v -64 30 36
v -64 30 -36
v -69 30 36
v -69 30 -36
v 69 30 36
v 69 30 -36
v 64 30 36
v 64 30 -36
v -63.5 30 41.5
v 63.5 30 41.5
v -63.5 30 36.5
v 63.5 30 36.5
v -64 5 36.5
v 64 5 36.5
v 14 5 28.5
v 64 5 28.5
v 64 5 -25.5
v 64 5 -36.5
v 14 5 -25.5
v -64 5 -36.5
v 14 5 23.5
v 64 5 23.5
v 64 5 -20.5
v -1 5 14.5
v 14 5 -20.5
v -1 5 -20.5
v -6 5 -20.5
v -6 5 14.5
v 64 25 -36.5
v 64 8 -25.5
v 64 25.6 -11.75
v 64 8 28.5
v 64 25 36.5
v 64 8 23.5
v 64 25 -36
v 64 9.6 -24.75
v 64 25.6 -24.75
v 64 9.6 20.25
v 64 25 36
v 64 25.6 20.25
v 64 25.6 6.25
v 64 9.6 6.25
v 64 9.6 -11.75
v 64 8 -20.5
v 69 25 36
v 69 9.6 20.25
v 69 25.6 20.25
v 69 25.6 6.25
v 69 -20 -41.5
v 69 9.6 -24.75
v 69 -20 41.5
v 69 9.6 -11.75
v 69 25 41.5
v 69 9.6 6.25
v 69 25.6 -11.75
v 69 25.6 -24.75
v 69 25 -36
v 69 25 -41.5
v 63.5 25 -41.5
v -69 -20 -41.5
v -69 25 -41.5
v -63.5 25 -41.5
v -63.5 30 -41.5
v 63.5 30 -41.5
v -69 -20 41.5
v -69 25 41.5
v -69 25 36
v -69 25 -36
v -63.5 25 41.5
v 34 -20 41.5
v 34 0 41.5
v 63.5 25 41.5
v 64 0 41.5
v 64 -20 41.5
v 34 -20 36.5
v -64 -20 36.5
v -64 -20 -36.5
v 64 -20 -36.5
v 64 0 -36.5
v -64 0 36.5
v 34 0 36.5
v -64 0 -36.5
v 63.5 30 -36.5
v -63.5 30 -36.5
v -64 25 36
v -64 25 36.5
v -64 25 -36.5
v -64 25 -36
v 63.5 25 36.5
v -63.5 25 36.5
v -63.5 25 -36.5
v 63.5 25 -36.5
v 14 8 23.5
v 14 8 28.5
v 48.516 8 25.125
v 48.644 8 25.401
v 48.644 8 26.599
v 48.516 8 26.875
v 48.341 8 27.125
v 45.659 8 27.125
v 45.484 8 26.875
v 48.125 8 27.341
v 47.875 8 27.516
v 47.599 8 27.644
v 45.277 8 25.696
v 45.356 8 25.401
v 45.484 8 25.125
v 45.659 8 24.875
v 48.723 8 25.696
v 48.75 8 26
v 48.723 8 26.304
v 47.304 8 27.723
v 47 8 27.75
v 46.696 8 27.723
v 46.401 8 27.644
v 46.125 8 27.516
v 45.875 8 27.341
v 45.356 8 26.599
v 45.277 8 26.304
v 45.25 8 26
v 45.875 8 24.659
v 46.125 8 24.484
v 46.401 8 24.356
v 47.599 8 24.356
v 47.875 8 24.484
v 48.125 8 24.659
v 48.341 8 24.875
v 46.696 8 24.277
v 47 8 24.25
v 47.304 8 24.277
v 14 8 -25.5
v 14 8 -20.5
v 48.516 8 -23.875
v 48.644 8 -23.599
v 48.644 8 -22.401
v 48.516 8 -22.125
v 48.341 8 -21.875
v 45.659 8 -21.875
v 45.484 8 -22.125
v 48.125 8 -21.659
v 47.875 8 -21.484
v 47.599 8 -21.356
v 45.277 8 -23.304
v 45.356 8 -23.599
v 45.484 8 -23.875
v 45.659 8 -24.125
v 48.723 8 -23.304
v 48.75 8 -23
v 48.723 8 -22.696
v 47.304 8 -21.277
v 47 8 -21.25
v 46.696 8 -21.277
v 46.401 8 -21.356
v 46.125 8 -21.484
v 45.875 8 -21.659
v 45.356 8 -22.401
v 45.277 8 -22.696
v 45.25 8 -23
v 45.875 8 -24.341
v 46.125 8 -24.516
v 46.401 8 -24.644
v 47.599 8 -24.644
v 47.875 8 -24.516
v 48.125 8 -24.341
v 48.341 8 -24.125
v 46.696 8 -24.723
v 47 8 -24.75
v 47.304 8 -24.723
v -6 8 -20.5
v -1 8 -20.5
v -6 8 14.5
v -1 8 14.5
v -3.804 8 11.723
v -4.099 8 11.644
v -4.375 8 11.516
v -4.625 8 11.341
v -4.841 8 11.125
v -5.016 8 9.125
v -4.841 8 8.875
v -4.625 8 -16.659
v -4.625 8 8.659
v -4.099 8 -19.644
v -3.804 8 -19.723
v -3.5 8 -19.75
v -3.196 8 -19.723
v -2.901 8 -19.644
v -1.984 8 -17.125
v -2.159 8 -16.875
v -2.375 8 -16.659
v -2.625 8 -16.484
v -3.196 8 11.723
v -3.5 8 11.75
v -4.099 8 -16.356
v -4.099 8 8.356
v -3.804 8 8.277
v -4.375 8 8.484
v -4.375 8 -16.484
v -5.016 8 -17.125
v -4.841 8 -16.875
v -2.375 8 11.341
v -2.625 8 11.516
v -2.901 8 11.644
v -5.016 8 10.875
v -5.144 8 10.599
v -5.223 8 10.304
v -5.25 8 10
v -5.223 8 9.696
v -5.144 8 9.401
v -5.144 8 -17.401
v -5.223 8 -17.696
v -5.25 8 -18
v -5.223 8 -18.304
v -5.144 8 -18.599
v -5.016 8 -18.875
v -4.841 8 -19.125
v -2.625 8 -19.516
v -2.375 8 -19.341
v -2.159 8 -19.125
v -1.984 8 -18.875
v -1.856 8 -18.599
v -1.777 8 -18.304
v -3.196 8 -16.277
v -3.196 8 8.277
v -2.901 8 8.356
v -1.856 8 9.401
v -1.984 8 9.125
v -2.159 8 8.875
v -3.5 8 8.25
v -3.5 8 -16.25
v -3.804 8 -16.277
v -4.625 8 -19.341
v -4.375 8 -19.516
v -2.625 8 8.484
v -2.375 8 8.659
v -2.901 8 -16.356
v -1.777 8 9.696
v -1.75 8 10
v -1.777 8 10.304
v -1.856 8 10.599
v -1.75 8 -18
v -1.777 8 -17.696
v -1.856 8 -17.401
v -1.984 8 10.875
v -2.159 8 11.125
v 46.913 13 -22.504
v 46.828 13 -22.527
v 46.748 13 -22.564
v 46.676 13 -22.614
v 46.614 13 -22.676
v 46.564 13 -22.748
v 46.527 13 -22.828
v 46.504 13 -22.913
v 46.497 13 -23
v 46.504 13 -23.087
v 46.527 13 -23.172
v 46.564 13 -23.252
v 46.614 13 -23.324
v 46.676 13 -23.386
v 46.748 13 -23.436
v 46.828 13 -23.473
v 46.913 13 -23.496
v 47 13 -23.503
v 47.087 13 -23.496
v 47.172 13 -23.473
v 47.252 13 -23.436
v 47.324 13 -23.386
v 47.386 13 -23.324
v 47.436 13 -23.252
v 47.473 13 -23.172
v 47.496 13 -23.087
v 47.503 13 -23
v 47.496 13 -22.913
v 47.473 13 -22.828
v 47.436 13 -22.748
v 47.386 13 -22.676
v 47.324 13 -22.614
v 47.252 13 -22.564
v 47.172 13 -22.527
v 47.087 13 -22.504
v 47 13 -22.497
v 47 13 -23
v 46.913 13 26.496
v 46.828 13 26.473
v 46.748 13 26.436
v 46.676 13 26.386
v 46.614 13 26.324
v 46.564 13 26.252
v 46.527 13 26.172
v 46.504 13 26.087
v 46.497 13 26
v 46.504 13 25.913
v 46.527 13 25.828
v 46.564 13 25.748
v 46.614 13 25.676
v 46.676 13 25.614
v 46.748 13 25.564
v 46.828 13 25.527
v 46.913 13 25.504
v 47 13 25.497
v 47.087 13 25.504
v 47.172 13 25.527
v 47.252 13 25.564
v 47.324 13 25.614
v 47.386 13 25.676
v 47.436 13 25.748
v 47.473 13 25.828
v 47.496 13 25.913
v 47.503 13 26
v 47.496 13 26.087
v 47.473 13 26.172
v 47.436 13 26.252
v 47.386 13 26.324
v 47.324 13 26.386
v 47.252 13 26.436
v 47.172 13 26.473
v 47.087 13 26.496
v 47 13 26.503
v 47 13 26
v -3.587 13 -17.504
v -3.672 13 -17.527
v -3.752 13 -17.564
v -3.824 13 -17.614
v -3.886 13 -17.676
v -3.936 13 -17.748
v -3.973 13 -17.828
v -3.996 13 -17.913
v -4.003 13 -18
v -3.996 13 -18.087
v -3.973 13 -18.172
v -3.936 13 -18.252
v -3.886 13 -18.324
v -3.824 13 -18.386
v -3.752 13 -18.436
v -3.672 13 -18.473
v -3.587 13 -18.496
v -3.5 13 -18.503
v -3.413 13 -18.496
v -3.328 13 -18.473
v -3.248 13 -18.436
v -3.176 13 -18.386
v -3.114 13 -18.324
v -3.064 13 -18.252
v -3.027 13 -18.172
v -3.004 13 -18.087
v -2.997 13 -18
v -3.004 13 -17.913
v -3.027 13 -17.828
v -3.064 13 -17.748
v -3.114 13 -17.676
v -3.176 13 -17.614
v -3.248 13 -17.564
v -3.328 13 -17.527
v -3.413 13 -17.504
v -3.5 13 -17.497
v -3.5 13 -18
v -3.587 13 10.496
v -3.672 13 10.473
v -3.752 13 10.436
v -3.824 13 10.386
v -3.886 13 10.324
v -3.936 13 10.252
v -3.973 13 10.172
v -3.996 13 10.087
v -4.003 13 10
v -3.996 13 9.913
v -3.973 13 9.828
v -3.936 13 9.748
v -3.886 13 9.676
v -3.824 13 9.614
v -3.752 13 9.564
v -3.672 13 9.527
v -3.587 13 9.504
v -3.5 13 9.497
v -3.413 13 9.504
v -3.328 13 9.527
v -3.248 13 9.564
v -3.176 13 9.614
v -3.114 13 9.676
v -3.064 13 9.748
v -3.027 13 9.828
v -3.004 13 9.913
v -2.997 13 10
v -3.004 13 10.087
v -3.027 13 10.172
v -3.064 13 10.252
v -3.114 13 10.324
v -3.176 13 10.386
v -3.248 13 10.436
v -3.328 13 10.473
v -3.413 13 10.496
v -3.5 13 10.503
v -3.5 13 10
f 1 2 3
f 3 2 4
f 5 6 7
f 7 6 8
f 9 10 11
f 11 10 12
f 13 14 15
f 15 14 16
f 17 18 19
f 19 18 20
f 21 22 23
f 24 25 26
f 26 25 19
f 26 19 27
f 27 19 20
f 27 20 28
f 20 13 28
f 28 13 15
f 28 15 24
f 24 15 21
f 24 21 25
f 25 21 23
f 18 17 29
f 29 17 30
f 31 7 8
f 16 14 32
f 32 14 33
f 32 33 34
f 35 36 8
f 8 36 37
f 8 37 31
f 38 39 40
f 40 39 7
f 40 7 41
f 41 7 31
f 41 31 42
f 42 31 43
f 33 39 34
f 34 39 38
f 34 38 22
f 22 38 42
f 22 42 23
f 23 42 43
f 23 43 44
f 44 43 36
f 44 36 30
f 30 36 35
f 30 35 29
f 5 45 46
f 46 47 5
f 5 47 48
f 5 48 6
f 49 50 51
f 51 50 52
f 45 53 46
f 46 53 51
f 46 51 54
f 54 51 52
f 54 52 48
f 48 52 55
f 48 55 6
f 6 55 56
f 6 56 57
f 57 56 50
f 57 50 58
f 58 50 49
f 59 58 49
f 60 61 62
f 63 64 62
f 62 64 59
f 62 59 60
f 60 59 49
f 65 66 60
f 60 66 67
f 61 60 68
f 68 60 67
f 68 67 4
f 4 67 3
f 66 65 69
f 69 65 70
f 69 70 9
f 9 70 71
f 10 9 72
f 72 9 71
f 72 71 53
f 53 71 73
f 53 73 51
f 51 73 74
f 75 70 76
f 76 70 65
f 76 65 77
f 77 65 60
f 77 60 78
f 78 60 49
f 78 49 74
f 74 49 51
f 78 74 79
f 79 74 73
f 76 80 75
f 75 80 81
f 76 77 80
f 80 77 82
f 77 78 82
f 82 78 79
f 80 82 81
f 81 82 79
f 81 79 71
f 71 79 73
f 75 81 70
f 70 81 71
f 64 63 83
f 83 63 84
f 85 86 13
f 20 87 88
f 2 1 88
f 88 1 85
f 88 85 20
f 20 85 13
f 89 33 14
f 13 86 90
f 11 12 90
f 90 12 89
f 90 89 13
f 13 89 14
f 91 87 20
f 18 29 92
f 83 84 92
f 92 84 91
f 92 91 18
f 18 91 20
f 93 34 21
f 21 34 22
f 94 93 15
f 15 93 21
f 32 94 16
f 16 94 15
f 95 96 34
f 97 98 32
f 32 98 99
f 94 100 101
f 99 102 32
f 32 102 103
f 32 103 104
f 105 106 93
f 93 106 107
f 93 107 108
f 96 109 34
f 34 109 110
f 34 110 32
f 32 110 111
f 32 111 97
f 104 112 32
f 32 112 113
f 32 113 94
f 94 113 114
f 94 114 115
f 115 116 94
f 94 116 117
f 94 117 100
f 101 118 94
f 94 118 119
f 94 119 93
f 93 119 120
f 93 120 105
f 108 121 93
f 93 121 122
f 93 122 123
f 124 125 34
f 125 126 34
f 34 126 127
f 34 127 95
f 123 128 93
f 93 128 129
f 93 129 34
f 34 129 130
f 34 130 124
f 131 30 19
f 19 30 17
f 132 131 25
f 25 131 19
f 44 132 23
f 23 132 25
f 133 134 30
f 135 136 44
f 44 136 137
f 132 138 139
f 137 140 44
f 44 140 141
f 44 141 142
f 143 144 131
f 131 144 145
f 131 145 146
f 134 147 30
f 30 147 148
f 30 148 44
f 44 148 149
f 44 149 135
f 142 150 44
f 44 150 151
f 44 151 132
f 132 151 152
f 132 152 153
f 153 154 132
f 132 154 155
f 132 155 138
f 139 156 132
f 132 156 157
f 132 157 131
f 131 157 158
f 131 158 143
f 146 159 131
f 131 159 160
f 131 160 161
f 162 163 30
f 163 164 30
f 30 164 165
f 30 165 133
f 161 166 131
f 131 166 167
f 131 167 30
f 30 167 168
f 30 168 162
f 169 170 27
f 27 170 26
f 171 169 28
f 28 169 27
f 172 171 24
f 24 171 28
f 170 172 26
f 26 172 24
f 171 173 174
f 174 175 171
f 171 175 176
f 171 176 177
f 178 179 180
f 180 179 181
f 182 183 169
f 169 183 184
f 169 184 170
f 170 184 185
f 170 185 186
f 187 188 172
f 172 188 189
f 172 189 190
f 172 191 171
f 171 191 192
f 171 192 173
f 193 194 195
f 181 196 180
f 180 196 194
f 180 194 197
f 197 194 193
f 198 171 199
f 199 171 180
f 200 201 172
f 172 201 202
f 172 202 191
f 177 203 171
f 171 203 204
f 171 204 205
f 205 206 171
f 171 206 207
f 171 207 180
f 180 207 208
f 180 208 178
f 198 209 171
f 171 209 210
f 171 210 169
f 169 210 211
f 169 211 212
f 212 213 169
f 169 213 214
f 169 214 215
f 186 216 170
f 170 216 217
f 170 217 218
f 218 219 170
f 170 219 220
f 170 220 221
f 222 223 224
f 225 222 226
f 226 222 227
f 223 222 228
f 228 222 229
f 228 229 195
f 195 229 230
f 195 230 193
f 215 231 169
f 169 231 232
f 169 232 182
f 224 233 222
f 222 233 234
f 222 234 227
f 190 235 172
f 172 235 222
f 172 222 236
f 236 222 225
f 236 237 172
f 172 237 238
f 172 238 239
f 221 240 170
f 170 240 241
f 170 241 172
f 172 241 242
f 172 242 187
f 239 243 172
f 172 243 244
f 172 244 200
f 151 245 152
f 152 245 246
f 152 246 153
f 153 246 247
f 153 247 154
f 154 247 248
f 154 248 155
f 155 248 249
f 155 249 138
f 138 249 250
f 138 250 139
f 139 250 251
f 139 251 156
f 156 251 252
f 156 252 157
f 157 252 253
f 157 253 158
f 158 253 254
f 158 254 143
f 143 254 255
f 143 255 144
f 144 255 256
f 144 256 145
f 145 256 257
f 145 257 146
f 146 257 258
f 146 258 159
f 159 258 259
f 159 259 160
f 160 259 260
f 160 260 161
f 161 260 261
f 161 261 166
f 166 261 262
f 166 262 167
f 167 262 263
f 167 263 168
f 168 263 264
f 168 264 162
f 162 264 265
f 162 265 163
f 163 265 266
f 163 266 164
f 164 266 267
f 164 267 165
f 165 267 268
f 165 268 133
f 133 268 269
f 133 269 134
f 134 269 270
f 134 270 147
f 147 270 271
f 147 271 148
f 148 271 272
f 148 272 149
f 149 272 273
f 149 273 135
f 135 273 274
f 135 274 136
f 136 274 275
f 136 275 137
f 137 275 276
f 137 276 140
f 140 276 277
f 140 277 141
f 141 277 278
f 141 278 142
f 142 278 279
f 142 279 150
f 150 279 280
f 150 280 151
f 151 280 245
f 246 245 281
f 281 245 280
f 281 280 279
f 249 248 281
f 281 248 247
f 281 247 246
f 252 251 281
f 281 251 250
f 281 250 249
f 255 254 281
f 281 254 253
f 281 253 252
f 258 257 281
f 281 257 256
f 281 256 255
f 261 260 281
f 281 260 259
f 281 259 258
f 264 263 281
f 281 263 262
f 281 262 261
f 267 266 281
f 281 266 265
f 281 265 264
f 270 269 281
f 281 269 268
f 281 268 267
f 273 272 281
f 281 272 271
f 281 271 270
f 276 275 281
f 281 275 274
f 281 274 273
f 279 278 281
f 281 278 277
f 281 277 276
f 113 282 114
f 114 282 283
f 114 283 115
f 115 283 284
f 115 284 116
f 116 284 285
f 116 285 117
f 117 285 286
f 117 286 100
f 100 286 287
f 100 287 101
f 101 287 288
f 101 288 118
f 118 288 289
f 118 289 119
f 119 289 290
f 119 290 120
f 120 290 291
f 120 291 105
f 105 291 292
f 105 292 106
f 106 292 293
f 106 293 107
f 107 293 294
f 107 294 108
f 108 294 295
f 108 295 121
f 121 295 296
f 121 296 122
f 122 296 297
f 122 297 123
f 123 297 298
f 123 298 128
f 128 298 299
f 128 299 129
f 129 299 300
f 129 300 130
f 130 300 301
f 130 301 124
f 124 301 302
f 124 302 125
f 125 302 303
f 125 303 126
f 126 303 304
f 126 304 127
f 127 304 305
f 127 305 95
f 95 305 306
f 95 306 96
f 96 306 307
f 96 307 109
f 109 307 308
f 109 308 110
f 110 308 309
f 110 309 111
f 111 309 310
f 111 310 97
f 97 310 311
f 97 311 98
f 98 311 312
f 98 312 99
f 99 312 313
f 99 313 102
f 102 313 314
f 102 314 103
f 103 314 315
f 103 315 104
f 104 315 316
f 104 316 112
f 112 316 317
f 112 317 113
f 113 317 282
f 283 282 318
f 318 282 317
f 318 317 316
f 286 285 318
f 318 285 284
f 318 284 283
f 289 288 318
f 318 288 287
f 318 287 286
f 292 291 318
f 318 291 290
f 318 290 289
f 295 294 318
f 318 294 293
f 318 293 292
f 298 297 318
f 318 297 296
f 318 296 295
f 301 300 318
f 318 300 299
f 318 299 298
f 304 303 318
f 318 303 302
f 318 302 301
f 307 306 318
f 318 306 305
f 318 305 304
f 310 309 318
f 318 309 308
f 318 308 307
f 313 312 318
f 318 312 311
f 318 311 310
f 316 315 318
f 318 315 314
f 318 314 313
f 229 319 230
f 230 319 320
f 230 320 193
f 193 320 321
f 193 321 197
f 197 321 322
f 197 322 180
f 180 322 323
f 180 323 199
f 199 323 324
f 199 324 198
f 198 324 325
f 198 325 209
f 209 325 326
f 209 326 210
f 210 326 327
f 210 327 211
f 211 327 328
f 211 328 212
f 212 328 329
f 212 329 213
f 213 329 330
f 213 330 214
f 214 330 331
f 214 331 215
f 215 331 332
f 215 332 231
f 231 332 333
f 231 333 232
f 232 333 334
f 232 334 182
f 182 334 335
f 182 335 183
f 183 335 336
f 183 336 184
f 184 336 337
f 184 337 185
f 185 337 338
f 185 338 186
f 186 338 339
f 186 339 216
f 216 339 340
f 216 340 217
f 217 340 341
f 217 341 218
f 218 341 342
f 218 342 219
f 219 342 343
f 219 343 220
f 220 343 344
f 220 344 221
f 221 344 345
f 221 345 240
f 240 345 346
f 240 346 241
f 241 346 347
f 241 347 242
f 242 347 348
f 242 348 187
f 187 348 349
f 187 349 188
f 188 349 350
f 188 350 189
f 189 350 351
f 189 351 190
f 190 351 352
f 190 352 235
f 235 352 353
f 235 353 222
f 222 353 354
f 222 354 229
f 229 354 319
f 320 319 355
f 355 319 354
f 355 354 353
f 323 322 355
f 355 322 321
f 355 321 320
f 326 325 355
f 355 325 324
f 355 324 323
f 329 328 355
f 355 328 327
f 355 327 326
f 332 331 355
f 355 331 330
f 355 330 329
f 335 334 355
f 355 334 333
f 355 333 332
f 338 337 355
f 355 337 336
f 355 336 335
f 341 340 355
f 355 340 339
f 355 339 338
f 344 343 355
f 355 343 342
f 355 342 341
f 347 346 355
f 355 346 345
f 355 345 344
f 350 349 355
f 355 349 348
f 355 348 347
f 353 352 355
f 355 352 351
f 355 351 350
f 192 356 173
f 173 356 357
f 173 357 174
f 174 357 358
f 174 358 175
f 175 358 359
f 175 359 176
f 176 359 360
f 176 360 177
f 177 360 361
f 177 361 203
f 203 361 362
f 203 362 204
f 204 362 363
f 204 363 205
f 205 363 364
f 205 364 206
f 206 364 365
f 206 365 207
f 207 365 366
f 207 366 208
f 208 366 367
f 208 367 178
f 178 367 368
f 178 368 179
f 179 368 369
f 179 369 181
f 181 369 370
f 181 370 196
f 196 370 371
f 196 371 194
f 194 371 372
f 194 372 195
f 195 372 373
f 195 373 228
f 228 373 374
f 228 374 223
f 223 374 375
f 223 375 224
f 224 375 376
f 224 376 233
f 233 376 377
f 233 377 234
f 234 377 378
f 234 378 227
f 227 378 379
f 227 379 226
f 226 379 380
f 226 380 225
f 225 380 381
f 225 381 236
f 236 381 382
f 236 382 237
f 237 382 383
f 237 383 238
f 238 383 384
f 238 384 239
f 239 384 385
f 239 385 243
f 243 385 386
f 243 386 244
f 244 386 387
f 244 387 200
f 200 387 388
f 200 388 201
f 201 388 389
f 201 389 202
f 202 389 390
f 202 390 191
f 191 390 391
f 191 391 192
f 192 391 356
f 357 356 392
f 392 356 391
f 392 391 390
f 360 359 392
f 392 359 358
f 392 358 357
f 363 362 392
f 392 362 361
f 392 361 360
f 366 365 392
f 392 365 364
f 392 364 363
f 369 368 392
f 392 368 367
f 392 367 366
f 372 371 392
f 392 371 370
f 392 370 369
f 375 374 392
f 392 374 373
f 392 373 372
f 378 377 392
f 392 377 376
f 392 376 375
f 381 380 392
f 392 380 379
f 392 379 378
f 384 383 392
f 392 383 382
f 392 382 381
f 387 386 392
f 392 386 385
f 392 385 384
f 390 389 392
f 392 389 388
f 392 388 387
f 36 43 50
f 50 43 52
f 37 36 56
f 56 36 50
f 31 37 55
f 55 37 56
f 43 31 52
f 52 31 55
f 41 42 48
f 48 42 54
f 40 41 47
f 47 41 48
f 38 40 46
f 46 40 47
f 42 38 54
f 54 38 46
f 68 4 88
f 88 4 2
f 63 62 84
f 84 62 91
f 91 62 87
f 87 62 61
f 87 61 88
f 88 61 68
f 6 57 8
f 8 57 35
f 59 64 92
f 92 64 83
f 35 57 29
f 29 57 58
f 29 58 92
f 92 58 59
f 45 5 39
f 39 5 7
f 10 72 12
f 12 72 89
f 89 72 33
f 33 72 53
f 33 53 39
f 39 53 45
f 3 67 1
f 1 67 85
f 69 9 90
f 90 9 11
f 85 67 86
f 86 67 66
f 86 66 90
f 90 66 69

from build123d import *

# Parameters (mm, degrees)
SKETCH1_W                      = 138
SKETCH1_H                      = 83
BOSS_EXTRUDE1_DEPTH            = 5
SKETCH2_W                      = 138
SKETCH2_H                      = 83
SKETCH2_W_2                    = 128
SKETCH2_H_2                    = 73
BOSS_EXTRUDE2_DEPTH            = 20
CUT_EXTRUDE1_REACH             = 108.042
SKETCH3_W                      = 30
SKETCH3_H                      = 20
SKETCH4_W                      = 138
SKETCH4_H                      = 83
SKETCH4_W_2                    = 128
SKETCH4_H_2                    = 73
BOSS_EXTRUDE3_DEPTH            = 25
SKETCH5_W                      = 50
SKETCH5_H                      = 5
SKETCH5_W_2                    = 5
SKETCH5_H_2                    = 35
BOSS_EXTRUDE10_DEPTH           = 3
SKETCH6_R                      = 1.75
BOSS_EXTRUDE11_DEPTH           = 5
BOSS_EXTRUDE11_DRAFT           = 14
BOSS_EXTRUDE11_PROFILE_2_DEPTH = 5
BOSS_EXTRUDE11_PROFILE_2_DRAFT = 14
BOSS_EXTRUDE11_PROFILE_3_DEPTH = 5
BOSS_EXTRUDE11_PROFILE_3_DRAFT = 14
BOSS_EXTRUDE11_PROFILE_4_DEPTH = 5
BOSS_EXTRUDE11_PROFILE_4_DRAFT = 14
CUT_EXTRUDE2_REACH             = 144.518
SKETCH7_W                      = 13
SKETCH7_H                      = 16
CUT_EXTRUDE3_REACH             = 144.518
SKETCH8_W                      = 14
SKETCH8_H                      = 16
SKETCH11_W                     = 5.5
SKETCH11_H                     = 5.5
CUT_EXTRUDE7_DEPTH             = 5


with BuildPart() as part:
    # Sketch1 → Boss-Extrude1 (new body)
    with BuildSketch(Plane(origin=(0, 0, 0), x_dir=(1, 0, 0), z_dir=(0, 1, 0))):
        Rectangle(SKETCH1_W, SKETCH1_H)
    extrude(amount=BOSS_EXTRUDE1_DEPTH)

    # Sketch2 → Boss-Extrude2 (add)
    with BuildSketch(Plane.XZ):
        Rectangle(SKETCH2_W, SKETCH2_H)
        Rectangle(SKETCH2_W_2, SKETCH2_H_2, mode=Mode.SUBTRACT)
    extrude(amount=BOSS_EXTRUDE2_DEPTH)

    # Sketch3 → Cut-Extrude1 (cut, up to next)
    with BuildSketch(Plane(origin=(0, 0, 36.5), x_dir=(-1, 0, 0), z_dir=(0, 0, -1)), mode=Mode.PRIVATE) as cut_extrude1_sk1:
        with Locations((-49, -10)):
            Rectangle(SKETCH3_W, SKETCH3_H)
    cut_extrude1_tool1 = extrude(cut_extrude1_sk1.sketch, amount=-CUT_EXTRUDE1_REACH, mode=Mode.PRIVATE) & part.part
    add(cut_extrude1_tool1.solids().sort_by_distance((49, -10, 36.5))[0], mode=Mode.SUBTRACT)

    # Sketch4 → Boss-Extrude3 (add)
    with BuildSketch(Plane(origin=(0, 5, 0), x_dir=(1, 0, 0), z_dir=(0, 1, 0))):
        Rectangle(SKETCH4_W, SKETCH4_H)
        Rectangle(SKETCH4_W_2, SKETCH4_H_2, mode=Mode.SUBTRACT)
    extrude(amount=BOSS_EXTRUDE3_DEPTH)

    # Sketch5 → Boss-Extrude10 (add)
    with BuildSketch(Plane(origin=(0, 5, 0), x_dir=(1, 0, 0), z_dir=(0, 1, 0))):
        with Locations((39, -26)):
            Rectangle(SKETCH5_W, SKETCH5_H)
        with Locations((39, 23)):
            Rectangle(SKETCH5_W, SKETCH5_H)
        with Locations((-3.5, 3)):
            Rectangle(SKETCH5_W_2, SKETCH5_H_2)
    extrude(amount=BOSS_EXTRUDE10_DEPTH)


with BuildPart() as boss_extrude11_tool:
    # Sketch6 → Boss-Extrude11 (with draft: the straight prism first)
    with BuildSketch(Plane(origin=(0, 8, 0), x_dir=(1, 0, 0), z_dir=(0, 1, 0))):
        with Locations((47, 23)):
            Circle(SKETCH6_R)
    extrude(amount=BOSS_EXTRUDE11_DEPTH)
    # Boss-Extrude11: the draft: its side faces are tilted about the plane it starts from
    boss_extrude11_sides = [boss_extrude11_tool.faces().sort_by_distance(p)[0] for p in [
        (45.25, 10.5, -23),
    ]]
    draft(boss_extrude11_sides, Plane(origin=(0, 8, 0), x_dir=(1, 0, 0), z_dir=(0, 1, 0)), BOSS_EXTRUDE11_DRAFT)


with BuildPart() as part_1:
    add(part.part)

    # Boss-Extrude11: add boss_extrude11_tool
    add(boss_extrude11_tool.part)


with BuildPart() as boss_extrude11_profile_2_tool:
    # Sketch6 → Boss-Extrude11 profile 2 (with draft: the straight prism first)
    with BuildSketch(Plane(origin=(0, 8, 0), x_dir=(1, 0, 0), z_dir=(0, 1, 0))):
        with Locations((47, -26)):
            Circle(SKETCH6_R)
    extrude(amount=BOSS_EXTRUDE11_PROFILE_2_DEPTH)
    # Boss-Extrude11 profile 2: the draft: its side faces are tilted about the plane it starts from
    boss_extrude11_profile_2_sides = [boss_extrude11_profile_2_tool.faces().sort_by_distance(p)[0] for p in [
        (45.25, 10.5, 26),
    ]]
    draft(boss_extrude11_profile_2_sides, Plane(origin=(0, 8, 0), x_dir=(1, 0, 0), z_dir=(0, 1, 0)), BOSS_EXTRUDE11_PROFILE_2_DRAFT)


with BuildPart() as part_2:
    add(part_1.part)

    # Boss-Extrude11 profile 2: add boss_extrude11_profile_2_tool
    add(boss_extrude11_profile_2_tool.part)


with BuildPart() as boss_extrude11_profile_3_tool:
    # Sketch6 → Boss-Extrude11 profile 3 (with draft: the straight prism first)
    with BuildSketch(Plane(origin=(0, 8, 0), x_dir=(1, 0, 0), z_dir=(0, 1, 0))):
        with Locations((-3.5, 18)):
            Circle(SKETCH6_R)
    extrude(amount=BOSS_EXTRUDE11_PROFILE_3_DEPTH)
    # Boss-Extrude11 profile 3: the draft: its side faces are tilted about the plane it starts from
    boss_extrude11_profile_3_sides = [boss_extrude11_profile_3_tool.faces().sort_by_distance(p)[0] for p in [
        (-5.25, 10.5, -18),
    ]]
    draft(boss_extrude11_profile_3_sides, Plane(origin=(0, 8, 0), x_dir=(1, 0, 0), z_dir=(0, 1, 0)), BOSS_EXTRUDE11_PROFILE_3_DRAFT)


with BuildPart() as part_3:
    add(part_2.part)

    # Boss-Extrude11 profile 3: add boss_extrude11_profile_3_tool
    add(boss_extrude11_profile_3_tool.part)


with BuildPart() as boss_extrude11_profile_4_tool:
    # Sketch6 → Boss-Extrude11 profile 4 (with draft: the straight prism first)
    with BuildSketch(Plane(origin=(0, 8, 0), x_dir=(1, 0, 0), z_dir=(0, 1, 0))):
        with Locations((-3.5, -10)):
            Circle(SKETCH6_R)
    extrude(amount=BOSS_EXTRUDE11_PROFILE_4_DEPTH)
    # Boss-Extrude11 profile 4: the draft: its side faces are tilted about the plane it starts from
    boss_extrude11_profile_4_sides = [boss_extrude11_profile_4_tool.faces().sort_by_distance(p)[0] for p in [
        (-5.25, 10.5, 10),
    ]]
    draft(boss_extrude11_profile_4_sides, Plane(origin=(0, 8, 0), x_dir=(1, 0, 0), z_dir=(0, 1, 0)), BOSS_EXTRUDE11_PROFILE_4_DRAFT)


with BuildPart() as part_4:
    add(part_3.part)

    # Boss-Extrude11 profile 4: add boss_extrude11_profile_4_tool
    add(boss_extrude11_profile_4_tool.part)

    # Sketch7 → Cut-Extrude2 (cut, up to next)
    with BuildSketch(Plane.ZY.offset(-64), mode=Mode.PRIVATE) as cut_extrude2_sk1:
        with Locations((-18.25, 17.6)):
            Rectangle(SKETCH7_W, SKETCH7_H)
    cut_extrude2_tool1 = extrude(cut_extrude2_sk1.sketch, amount=-CUT_EXTRUDE2_REACH, mode=Mode.PRIVATE) & part_4.part
    add(cut_extrude2_tool1.solids().sort_by_distance((64, 17.6, -18.25))[0], mode=Mode.SUBTRACT)

    # Sketch8 → Cut-Extrude3 (cut, up to next)
    with BuildSketch(Plane.ZY.offset(-64), mode=Mode.PRIVATE) as cut_extrude3_sk1:
        with Locations((13.25, 17.6)):
            Rectangle(SKETCH8_W, SKETCH8_H)
    cut_extrude3_tool1 = extrude(cut_extrude3_sk1.sketch, amount=-CUT_EXTRUDE3_REACH, mode=Mode.PRIVATE) & part_4.part
    add(cut_extrude3_tool1.solids().sort_by_distance((64, 17.6, 13.25))[0], mode=Mode.SUBTRACT)

    # Sketch11 → Cut-Extrude7 (cut)
    with BuildSketch(Plane(origin=(0, 30, 0), x_dir=(1, 0, 0), z_dir=(0, 1, 0))):
        with Locations((-66.25, 38.75)):
            Rectangle(SKETCH11_W, SKETCH11_H)
        with Locations((-66.25, -38.75)):
            Rectangle(SKETCH11_W, SKETCH11_H)
        with Locations((66.25, -38.75)):
            Rectangle(SKETCH11_W, SKETCH11_H)
        with Locations((66.25, 38.75)):
            Rectangle(SKETCH11_W, SKETCH11_H)
    extrude(amount=-CUT_EXTRUDE7_DEPTH, mode=Mode.SUBTRACT)


solid = part_4.part
